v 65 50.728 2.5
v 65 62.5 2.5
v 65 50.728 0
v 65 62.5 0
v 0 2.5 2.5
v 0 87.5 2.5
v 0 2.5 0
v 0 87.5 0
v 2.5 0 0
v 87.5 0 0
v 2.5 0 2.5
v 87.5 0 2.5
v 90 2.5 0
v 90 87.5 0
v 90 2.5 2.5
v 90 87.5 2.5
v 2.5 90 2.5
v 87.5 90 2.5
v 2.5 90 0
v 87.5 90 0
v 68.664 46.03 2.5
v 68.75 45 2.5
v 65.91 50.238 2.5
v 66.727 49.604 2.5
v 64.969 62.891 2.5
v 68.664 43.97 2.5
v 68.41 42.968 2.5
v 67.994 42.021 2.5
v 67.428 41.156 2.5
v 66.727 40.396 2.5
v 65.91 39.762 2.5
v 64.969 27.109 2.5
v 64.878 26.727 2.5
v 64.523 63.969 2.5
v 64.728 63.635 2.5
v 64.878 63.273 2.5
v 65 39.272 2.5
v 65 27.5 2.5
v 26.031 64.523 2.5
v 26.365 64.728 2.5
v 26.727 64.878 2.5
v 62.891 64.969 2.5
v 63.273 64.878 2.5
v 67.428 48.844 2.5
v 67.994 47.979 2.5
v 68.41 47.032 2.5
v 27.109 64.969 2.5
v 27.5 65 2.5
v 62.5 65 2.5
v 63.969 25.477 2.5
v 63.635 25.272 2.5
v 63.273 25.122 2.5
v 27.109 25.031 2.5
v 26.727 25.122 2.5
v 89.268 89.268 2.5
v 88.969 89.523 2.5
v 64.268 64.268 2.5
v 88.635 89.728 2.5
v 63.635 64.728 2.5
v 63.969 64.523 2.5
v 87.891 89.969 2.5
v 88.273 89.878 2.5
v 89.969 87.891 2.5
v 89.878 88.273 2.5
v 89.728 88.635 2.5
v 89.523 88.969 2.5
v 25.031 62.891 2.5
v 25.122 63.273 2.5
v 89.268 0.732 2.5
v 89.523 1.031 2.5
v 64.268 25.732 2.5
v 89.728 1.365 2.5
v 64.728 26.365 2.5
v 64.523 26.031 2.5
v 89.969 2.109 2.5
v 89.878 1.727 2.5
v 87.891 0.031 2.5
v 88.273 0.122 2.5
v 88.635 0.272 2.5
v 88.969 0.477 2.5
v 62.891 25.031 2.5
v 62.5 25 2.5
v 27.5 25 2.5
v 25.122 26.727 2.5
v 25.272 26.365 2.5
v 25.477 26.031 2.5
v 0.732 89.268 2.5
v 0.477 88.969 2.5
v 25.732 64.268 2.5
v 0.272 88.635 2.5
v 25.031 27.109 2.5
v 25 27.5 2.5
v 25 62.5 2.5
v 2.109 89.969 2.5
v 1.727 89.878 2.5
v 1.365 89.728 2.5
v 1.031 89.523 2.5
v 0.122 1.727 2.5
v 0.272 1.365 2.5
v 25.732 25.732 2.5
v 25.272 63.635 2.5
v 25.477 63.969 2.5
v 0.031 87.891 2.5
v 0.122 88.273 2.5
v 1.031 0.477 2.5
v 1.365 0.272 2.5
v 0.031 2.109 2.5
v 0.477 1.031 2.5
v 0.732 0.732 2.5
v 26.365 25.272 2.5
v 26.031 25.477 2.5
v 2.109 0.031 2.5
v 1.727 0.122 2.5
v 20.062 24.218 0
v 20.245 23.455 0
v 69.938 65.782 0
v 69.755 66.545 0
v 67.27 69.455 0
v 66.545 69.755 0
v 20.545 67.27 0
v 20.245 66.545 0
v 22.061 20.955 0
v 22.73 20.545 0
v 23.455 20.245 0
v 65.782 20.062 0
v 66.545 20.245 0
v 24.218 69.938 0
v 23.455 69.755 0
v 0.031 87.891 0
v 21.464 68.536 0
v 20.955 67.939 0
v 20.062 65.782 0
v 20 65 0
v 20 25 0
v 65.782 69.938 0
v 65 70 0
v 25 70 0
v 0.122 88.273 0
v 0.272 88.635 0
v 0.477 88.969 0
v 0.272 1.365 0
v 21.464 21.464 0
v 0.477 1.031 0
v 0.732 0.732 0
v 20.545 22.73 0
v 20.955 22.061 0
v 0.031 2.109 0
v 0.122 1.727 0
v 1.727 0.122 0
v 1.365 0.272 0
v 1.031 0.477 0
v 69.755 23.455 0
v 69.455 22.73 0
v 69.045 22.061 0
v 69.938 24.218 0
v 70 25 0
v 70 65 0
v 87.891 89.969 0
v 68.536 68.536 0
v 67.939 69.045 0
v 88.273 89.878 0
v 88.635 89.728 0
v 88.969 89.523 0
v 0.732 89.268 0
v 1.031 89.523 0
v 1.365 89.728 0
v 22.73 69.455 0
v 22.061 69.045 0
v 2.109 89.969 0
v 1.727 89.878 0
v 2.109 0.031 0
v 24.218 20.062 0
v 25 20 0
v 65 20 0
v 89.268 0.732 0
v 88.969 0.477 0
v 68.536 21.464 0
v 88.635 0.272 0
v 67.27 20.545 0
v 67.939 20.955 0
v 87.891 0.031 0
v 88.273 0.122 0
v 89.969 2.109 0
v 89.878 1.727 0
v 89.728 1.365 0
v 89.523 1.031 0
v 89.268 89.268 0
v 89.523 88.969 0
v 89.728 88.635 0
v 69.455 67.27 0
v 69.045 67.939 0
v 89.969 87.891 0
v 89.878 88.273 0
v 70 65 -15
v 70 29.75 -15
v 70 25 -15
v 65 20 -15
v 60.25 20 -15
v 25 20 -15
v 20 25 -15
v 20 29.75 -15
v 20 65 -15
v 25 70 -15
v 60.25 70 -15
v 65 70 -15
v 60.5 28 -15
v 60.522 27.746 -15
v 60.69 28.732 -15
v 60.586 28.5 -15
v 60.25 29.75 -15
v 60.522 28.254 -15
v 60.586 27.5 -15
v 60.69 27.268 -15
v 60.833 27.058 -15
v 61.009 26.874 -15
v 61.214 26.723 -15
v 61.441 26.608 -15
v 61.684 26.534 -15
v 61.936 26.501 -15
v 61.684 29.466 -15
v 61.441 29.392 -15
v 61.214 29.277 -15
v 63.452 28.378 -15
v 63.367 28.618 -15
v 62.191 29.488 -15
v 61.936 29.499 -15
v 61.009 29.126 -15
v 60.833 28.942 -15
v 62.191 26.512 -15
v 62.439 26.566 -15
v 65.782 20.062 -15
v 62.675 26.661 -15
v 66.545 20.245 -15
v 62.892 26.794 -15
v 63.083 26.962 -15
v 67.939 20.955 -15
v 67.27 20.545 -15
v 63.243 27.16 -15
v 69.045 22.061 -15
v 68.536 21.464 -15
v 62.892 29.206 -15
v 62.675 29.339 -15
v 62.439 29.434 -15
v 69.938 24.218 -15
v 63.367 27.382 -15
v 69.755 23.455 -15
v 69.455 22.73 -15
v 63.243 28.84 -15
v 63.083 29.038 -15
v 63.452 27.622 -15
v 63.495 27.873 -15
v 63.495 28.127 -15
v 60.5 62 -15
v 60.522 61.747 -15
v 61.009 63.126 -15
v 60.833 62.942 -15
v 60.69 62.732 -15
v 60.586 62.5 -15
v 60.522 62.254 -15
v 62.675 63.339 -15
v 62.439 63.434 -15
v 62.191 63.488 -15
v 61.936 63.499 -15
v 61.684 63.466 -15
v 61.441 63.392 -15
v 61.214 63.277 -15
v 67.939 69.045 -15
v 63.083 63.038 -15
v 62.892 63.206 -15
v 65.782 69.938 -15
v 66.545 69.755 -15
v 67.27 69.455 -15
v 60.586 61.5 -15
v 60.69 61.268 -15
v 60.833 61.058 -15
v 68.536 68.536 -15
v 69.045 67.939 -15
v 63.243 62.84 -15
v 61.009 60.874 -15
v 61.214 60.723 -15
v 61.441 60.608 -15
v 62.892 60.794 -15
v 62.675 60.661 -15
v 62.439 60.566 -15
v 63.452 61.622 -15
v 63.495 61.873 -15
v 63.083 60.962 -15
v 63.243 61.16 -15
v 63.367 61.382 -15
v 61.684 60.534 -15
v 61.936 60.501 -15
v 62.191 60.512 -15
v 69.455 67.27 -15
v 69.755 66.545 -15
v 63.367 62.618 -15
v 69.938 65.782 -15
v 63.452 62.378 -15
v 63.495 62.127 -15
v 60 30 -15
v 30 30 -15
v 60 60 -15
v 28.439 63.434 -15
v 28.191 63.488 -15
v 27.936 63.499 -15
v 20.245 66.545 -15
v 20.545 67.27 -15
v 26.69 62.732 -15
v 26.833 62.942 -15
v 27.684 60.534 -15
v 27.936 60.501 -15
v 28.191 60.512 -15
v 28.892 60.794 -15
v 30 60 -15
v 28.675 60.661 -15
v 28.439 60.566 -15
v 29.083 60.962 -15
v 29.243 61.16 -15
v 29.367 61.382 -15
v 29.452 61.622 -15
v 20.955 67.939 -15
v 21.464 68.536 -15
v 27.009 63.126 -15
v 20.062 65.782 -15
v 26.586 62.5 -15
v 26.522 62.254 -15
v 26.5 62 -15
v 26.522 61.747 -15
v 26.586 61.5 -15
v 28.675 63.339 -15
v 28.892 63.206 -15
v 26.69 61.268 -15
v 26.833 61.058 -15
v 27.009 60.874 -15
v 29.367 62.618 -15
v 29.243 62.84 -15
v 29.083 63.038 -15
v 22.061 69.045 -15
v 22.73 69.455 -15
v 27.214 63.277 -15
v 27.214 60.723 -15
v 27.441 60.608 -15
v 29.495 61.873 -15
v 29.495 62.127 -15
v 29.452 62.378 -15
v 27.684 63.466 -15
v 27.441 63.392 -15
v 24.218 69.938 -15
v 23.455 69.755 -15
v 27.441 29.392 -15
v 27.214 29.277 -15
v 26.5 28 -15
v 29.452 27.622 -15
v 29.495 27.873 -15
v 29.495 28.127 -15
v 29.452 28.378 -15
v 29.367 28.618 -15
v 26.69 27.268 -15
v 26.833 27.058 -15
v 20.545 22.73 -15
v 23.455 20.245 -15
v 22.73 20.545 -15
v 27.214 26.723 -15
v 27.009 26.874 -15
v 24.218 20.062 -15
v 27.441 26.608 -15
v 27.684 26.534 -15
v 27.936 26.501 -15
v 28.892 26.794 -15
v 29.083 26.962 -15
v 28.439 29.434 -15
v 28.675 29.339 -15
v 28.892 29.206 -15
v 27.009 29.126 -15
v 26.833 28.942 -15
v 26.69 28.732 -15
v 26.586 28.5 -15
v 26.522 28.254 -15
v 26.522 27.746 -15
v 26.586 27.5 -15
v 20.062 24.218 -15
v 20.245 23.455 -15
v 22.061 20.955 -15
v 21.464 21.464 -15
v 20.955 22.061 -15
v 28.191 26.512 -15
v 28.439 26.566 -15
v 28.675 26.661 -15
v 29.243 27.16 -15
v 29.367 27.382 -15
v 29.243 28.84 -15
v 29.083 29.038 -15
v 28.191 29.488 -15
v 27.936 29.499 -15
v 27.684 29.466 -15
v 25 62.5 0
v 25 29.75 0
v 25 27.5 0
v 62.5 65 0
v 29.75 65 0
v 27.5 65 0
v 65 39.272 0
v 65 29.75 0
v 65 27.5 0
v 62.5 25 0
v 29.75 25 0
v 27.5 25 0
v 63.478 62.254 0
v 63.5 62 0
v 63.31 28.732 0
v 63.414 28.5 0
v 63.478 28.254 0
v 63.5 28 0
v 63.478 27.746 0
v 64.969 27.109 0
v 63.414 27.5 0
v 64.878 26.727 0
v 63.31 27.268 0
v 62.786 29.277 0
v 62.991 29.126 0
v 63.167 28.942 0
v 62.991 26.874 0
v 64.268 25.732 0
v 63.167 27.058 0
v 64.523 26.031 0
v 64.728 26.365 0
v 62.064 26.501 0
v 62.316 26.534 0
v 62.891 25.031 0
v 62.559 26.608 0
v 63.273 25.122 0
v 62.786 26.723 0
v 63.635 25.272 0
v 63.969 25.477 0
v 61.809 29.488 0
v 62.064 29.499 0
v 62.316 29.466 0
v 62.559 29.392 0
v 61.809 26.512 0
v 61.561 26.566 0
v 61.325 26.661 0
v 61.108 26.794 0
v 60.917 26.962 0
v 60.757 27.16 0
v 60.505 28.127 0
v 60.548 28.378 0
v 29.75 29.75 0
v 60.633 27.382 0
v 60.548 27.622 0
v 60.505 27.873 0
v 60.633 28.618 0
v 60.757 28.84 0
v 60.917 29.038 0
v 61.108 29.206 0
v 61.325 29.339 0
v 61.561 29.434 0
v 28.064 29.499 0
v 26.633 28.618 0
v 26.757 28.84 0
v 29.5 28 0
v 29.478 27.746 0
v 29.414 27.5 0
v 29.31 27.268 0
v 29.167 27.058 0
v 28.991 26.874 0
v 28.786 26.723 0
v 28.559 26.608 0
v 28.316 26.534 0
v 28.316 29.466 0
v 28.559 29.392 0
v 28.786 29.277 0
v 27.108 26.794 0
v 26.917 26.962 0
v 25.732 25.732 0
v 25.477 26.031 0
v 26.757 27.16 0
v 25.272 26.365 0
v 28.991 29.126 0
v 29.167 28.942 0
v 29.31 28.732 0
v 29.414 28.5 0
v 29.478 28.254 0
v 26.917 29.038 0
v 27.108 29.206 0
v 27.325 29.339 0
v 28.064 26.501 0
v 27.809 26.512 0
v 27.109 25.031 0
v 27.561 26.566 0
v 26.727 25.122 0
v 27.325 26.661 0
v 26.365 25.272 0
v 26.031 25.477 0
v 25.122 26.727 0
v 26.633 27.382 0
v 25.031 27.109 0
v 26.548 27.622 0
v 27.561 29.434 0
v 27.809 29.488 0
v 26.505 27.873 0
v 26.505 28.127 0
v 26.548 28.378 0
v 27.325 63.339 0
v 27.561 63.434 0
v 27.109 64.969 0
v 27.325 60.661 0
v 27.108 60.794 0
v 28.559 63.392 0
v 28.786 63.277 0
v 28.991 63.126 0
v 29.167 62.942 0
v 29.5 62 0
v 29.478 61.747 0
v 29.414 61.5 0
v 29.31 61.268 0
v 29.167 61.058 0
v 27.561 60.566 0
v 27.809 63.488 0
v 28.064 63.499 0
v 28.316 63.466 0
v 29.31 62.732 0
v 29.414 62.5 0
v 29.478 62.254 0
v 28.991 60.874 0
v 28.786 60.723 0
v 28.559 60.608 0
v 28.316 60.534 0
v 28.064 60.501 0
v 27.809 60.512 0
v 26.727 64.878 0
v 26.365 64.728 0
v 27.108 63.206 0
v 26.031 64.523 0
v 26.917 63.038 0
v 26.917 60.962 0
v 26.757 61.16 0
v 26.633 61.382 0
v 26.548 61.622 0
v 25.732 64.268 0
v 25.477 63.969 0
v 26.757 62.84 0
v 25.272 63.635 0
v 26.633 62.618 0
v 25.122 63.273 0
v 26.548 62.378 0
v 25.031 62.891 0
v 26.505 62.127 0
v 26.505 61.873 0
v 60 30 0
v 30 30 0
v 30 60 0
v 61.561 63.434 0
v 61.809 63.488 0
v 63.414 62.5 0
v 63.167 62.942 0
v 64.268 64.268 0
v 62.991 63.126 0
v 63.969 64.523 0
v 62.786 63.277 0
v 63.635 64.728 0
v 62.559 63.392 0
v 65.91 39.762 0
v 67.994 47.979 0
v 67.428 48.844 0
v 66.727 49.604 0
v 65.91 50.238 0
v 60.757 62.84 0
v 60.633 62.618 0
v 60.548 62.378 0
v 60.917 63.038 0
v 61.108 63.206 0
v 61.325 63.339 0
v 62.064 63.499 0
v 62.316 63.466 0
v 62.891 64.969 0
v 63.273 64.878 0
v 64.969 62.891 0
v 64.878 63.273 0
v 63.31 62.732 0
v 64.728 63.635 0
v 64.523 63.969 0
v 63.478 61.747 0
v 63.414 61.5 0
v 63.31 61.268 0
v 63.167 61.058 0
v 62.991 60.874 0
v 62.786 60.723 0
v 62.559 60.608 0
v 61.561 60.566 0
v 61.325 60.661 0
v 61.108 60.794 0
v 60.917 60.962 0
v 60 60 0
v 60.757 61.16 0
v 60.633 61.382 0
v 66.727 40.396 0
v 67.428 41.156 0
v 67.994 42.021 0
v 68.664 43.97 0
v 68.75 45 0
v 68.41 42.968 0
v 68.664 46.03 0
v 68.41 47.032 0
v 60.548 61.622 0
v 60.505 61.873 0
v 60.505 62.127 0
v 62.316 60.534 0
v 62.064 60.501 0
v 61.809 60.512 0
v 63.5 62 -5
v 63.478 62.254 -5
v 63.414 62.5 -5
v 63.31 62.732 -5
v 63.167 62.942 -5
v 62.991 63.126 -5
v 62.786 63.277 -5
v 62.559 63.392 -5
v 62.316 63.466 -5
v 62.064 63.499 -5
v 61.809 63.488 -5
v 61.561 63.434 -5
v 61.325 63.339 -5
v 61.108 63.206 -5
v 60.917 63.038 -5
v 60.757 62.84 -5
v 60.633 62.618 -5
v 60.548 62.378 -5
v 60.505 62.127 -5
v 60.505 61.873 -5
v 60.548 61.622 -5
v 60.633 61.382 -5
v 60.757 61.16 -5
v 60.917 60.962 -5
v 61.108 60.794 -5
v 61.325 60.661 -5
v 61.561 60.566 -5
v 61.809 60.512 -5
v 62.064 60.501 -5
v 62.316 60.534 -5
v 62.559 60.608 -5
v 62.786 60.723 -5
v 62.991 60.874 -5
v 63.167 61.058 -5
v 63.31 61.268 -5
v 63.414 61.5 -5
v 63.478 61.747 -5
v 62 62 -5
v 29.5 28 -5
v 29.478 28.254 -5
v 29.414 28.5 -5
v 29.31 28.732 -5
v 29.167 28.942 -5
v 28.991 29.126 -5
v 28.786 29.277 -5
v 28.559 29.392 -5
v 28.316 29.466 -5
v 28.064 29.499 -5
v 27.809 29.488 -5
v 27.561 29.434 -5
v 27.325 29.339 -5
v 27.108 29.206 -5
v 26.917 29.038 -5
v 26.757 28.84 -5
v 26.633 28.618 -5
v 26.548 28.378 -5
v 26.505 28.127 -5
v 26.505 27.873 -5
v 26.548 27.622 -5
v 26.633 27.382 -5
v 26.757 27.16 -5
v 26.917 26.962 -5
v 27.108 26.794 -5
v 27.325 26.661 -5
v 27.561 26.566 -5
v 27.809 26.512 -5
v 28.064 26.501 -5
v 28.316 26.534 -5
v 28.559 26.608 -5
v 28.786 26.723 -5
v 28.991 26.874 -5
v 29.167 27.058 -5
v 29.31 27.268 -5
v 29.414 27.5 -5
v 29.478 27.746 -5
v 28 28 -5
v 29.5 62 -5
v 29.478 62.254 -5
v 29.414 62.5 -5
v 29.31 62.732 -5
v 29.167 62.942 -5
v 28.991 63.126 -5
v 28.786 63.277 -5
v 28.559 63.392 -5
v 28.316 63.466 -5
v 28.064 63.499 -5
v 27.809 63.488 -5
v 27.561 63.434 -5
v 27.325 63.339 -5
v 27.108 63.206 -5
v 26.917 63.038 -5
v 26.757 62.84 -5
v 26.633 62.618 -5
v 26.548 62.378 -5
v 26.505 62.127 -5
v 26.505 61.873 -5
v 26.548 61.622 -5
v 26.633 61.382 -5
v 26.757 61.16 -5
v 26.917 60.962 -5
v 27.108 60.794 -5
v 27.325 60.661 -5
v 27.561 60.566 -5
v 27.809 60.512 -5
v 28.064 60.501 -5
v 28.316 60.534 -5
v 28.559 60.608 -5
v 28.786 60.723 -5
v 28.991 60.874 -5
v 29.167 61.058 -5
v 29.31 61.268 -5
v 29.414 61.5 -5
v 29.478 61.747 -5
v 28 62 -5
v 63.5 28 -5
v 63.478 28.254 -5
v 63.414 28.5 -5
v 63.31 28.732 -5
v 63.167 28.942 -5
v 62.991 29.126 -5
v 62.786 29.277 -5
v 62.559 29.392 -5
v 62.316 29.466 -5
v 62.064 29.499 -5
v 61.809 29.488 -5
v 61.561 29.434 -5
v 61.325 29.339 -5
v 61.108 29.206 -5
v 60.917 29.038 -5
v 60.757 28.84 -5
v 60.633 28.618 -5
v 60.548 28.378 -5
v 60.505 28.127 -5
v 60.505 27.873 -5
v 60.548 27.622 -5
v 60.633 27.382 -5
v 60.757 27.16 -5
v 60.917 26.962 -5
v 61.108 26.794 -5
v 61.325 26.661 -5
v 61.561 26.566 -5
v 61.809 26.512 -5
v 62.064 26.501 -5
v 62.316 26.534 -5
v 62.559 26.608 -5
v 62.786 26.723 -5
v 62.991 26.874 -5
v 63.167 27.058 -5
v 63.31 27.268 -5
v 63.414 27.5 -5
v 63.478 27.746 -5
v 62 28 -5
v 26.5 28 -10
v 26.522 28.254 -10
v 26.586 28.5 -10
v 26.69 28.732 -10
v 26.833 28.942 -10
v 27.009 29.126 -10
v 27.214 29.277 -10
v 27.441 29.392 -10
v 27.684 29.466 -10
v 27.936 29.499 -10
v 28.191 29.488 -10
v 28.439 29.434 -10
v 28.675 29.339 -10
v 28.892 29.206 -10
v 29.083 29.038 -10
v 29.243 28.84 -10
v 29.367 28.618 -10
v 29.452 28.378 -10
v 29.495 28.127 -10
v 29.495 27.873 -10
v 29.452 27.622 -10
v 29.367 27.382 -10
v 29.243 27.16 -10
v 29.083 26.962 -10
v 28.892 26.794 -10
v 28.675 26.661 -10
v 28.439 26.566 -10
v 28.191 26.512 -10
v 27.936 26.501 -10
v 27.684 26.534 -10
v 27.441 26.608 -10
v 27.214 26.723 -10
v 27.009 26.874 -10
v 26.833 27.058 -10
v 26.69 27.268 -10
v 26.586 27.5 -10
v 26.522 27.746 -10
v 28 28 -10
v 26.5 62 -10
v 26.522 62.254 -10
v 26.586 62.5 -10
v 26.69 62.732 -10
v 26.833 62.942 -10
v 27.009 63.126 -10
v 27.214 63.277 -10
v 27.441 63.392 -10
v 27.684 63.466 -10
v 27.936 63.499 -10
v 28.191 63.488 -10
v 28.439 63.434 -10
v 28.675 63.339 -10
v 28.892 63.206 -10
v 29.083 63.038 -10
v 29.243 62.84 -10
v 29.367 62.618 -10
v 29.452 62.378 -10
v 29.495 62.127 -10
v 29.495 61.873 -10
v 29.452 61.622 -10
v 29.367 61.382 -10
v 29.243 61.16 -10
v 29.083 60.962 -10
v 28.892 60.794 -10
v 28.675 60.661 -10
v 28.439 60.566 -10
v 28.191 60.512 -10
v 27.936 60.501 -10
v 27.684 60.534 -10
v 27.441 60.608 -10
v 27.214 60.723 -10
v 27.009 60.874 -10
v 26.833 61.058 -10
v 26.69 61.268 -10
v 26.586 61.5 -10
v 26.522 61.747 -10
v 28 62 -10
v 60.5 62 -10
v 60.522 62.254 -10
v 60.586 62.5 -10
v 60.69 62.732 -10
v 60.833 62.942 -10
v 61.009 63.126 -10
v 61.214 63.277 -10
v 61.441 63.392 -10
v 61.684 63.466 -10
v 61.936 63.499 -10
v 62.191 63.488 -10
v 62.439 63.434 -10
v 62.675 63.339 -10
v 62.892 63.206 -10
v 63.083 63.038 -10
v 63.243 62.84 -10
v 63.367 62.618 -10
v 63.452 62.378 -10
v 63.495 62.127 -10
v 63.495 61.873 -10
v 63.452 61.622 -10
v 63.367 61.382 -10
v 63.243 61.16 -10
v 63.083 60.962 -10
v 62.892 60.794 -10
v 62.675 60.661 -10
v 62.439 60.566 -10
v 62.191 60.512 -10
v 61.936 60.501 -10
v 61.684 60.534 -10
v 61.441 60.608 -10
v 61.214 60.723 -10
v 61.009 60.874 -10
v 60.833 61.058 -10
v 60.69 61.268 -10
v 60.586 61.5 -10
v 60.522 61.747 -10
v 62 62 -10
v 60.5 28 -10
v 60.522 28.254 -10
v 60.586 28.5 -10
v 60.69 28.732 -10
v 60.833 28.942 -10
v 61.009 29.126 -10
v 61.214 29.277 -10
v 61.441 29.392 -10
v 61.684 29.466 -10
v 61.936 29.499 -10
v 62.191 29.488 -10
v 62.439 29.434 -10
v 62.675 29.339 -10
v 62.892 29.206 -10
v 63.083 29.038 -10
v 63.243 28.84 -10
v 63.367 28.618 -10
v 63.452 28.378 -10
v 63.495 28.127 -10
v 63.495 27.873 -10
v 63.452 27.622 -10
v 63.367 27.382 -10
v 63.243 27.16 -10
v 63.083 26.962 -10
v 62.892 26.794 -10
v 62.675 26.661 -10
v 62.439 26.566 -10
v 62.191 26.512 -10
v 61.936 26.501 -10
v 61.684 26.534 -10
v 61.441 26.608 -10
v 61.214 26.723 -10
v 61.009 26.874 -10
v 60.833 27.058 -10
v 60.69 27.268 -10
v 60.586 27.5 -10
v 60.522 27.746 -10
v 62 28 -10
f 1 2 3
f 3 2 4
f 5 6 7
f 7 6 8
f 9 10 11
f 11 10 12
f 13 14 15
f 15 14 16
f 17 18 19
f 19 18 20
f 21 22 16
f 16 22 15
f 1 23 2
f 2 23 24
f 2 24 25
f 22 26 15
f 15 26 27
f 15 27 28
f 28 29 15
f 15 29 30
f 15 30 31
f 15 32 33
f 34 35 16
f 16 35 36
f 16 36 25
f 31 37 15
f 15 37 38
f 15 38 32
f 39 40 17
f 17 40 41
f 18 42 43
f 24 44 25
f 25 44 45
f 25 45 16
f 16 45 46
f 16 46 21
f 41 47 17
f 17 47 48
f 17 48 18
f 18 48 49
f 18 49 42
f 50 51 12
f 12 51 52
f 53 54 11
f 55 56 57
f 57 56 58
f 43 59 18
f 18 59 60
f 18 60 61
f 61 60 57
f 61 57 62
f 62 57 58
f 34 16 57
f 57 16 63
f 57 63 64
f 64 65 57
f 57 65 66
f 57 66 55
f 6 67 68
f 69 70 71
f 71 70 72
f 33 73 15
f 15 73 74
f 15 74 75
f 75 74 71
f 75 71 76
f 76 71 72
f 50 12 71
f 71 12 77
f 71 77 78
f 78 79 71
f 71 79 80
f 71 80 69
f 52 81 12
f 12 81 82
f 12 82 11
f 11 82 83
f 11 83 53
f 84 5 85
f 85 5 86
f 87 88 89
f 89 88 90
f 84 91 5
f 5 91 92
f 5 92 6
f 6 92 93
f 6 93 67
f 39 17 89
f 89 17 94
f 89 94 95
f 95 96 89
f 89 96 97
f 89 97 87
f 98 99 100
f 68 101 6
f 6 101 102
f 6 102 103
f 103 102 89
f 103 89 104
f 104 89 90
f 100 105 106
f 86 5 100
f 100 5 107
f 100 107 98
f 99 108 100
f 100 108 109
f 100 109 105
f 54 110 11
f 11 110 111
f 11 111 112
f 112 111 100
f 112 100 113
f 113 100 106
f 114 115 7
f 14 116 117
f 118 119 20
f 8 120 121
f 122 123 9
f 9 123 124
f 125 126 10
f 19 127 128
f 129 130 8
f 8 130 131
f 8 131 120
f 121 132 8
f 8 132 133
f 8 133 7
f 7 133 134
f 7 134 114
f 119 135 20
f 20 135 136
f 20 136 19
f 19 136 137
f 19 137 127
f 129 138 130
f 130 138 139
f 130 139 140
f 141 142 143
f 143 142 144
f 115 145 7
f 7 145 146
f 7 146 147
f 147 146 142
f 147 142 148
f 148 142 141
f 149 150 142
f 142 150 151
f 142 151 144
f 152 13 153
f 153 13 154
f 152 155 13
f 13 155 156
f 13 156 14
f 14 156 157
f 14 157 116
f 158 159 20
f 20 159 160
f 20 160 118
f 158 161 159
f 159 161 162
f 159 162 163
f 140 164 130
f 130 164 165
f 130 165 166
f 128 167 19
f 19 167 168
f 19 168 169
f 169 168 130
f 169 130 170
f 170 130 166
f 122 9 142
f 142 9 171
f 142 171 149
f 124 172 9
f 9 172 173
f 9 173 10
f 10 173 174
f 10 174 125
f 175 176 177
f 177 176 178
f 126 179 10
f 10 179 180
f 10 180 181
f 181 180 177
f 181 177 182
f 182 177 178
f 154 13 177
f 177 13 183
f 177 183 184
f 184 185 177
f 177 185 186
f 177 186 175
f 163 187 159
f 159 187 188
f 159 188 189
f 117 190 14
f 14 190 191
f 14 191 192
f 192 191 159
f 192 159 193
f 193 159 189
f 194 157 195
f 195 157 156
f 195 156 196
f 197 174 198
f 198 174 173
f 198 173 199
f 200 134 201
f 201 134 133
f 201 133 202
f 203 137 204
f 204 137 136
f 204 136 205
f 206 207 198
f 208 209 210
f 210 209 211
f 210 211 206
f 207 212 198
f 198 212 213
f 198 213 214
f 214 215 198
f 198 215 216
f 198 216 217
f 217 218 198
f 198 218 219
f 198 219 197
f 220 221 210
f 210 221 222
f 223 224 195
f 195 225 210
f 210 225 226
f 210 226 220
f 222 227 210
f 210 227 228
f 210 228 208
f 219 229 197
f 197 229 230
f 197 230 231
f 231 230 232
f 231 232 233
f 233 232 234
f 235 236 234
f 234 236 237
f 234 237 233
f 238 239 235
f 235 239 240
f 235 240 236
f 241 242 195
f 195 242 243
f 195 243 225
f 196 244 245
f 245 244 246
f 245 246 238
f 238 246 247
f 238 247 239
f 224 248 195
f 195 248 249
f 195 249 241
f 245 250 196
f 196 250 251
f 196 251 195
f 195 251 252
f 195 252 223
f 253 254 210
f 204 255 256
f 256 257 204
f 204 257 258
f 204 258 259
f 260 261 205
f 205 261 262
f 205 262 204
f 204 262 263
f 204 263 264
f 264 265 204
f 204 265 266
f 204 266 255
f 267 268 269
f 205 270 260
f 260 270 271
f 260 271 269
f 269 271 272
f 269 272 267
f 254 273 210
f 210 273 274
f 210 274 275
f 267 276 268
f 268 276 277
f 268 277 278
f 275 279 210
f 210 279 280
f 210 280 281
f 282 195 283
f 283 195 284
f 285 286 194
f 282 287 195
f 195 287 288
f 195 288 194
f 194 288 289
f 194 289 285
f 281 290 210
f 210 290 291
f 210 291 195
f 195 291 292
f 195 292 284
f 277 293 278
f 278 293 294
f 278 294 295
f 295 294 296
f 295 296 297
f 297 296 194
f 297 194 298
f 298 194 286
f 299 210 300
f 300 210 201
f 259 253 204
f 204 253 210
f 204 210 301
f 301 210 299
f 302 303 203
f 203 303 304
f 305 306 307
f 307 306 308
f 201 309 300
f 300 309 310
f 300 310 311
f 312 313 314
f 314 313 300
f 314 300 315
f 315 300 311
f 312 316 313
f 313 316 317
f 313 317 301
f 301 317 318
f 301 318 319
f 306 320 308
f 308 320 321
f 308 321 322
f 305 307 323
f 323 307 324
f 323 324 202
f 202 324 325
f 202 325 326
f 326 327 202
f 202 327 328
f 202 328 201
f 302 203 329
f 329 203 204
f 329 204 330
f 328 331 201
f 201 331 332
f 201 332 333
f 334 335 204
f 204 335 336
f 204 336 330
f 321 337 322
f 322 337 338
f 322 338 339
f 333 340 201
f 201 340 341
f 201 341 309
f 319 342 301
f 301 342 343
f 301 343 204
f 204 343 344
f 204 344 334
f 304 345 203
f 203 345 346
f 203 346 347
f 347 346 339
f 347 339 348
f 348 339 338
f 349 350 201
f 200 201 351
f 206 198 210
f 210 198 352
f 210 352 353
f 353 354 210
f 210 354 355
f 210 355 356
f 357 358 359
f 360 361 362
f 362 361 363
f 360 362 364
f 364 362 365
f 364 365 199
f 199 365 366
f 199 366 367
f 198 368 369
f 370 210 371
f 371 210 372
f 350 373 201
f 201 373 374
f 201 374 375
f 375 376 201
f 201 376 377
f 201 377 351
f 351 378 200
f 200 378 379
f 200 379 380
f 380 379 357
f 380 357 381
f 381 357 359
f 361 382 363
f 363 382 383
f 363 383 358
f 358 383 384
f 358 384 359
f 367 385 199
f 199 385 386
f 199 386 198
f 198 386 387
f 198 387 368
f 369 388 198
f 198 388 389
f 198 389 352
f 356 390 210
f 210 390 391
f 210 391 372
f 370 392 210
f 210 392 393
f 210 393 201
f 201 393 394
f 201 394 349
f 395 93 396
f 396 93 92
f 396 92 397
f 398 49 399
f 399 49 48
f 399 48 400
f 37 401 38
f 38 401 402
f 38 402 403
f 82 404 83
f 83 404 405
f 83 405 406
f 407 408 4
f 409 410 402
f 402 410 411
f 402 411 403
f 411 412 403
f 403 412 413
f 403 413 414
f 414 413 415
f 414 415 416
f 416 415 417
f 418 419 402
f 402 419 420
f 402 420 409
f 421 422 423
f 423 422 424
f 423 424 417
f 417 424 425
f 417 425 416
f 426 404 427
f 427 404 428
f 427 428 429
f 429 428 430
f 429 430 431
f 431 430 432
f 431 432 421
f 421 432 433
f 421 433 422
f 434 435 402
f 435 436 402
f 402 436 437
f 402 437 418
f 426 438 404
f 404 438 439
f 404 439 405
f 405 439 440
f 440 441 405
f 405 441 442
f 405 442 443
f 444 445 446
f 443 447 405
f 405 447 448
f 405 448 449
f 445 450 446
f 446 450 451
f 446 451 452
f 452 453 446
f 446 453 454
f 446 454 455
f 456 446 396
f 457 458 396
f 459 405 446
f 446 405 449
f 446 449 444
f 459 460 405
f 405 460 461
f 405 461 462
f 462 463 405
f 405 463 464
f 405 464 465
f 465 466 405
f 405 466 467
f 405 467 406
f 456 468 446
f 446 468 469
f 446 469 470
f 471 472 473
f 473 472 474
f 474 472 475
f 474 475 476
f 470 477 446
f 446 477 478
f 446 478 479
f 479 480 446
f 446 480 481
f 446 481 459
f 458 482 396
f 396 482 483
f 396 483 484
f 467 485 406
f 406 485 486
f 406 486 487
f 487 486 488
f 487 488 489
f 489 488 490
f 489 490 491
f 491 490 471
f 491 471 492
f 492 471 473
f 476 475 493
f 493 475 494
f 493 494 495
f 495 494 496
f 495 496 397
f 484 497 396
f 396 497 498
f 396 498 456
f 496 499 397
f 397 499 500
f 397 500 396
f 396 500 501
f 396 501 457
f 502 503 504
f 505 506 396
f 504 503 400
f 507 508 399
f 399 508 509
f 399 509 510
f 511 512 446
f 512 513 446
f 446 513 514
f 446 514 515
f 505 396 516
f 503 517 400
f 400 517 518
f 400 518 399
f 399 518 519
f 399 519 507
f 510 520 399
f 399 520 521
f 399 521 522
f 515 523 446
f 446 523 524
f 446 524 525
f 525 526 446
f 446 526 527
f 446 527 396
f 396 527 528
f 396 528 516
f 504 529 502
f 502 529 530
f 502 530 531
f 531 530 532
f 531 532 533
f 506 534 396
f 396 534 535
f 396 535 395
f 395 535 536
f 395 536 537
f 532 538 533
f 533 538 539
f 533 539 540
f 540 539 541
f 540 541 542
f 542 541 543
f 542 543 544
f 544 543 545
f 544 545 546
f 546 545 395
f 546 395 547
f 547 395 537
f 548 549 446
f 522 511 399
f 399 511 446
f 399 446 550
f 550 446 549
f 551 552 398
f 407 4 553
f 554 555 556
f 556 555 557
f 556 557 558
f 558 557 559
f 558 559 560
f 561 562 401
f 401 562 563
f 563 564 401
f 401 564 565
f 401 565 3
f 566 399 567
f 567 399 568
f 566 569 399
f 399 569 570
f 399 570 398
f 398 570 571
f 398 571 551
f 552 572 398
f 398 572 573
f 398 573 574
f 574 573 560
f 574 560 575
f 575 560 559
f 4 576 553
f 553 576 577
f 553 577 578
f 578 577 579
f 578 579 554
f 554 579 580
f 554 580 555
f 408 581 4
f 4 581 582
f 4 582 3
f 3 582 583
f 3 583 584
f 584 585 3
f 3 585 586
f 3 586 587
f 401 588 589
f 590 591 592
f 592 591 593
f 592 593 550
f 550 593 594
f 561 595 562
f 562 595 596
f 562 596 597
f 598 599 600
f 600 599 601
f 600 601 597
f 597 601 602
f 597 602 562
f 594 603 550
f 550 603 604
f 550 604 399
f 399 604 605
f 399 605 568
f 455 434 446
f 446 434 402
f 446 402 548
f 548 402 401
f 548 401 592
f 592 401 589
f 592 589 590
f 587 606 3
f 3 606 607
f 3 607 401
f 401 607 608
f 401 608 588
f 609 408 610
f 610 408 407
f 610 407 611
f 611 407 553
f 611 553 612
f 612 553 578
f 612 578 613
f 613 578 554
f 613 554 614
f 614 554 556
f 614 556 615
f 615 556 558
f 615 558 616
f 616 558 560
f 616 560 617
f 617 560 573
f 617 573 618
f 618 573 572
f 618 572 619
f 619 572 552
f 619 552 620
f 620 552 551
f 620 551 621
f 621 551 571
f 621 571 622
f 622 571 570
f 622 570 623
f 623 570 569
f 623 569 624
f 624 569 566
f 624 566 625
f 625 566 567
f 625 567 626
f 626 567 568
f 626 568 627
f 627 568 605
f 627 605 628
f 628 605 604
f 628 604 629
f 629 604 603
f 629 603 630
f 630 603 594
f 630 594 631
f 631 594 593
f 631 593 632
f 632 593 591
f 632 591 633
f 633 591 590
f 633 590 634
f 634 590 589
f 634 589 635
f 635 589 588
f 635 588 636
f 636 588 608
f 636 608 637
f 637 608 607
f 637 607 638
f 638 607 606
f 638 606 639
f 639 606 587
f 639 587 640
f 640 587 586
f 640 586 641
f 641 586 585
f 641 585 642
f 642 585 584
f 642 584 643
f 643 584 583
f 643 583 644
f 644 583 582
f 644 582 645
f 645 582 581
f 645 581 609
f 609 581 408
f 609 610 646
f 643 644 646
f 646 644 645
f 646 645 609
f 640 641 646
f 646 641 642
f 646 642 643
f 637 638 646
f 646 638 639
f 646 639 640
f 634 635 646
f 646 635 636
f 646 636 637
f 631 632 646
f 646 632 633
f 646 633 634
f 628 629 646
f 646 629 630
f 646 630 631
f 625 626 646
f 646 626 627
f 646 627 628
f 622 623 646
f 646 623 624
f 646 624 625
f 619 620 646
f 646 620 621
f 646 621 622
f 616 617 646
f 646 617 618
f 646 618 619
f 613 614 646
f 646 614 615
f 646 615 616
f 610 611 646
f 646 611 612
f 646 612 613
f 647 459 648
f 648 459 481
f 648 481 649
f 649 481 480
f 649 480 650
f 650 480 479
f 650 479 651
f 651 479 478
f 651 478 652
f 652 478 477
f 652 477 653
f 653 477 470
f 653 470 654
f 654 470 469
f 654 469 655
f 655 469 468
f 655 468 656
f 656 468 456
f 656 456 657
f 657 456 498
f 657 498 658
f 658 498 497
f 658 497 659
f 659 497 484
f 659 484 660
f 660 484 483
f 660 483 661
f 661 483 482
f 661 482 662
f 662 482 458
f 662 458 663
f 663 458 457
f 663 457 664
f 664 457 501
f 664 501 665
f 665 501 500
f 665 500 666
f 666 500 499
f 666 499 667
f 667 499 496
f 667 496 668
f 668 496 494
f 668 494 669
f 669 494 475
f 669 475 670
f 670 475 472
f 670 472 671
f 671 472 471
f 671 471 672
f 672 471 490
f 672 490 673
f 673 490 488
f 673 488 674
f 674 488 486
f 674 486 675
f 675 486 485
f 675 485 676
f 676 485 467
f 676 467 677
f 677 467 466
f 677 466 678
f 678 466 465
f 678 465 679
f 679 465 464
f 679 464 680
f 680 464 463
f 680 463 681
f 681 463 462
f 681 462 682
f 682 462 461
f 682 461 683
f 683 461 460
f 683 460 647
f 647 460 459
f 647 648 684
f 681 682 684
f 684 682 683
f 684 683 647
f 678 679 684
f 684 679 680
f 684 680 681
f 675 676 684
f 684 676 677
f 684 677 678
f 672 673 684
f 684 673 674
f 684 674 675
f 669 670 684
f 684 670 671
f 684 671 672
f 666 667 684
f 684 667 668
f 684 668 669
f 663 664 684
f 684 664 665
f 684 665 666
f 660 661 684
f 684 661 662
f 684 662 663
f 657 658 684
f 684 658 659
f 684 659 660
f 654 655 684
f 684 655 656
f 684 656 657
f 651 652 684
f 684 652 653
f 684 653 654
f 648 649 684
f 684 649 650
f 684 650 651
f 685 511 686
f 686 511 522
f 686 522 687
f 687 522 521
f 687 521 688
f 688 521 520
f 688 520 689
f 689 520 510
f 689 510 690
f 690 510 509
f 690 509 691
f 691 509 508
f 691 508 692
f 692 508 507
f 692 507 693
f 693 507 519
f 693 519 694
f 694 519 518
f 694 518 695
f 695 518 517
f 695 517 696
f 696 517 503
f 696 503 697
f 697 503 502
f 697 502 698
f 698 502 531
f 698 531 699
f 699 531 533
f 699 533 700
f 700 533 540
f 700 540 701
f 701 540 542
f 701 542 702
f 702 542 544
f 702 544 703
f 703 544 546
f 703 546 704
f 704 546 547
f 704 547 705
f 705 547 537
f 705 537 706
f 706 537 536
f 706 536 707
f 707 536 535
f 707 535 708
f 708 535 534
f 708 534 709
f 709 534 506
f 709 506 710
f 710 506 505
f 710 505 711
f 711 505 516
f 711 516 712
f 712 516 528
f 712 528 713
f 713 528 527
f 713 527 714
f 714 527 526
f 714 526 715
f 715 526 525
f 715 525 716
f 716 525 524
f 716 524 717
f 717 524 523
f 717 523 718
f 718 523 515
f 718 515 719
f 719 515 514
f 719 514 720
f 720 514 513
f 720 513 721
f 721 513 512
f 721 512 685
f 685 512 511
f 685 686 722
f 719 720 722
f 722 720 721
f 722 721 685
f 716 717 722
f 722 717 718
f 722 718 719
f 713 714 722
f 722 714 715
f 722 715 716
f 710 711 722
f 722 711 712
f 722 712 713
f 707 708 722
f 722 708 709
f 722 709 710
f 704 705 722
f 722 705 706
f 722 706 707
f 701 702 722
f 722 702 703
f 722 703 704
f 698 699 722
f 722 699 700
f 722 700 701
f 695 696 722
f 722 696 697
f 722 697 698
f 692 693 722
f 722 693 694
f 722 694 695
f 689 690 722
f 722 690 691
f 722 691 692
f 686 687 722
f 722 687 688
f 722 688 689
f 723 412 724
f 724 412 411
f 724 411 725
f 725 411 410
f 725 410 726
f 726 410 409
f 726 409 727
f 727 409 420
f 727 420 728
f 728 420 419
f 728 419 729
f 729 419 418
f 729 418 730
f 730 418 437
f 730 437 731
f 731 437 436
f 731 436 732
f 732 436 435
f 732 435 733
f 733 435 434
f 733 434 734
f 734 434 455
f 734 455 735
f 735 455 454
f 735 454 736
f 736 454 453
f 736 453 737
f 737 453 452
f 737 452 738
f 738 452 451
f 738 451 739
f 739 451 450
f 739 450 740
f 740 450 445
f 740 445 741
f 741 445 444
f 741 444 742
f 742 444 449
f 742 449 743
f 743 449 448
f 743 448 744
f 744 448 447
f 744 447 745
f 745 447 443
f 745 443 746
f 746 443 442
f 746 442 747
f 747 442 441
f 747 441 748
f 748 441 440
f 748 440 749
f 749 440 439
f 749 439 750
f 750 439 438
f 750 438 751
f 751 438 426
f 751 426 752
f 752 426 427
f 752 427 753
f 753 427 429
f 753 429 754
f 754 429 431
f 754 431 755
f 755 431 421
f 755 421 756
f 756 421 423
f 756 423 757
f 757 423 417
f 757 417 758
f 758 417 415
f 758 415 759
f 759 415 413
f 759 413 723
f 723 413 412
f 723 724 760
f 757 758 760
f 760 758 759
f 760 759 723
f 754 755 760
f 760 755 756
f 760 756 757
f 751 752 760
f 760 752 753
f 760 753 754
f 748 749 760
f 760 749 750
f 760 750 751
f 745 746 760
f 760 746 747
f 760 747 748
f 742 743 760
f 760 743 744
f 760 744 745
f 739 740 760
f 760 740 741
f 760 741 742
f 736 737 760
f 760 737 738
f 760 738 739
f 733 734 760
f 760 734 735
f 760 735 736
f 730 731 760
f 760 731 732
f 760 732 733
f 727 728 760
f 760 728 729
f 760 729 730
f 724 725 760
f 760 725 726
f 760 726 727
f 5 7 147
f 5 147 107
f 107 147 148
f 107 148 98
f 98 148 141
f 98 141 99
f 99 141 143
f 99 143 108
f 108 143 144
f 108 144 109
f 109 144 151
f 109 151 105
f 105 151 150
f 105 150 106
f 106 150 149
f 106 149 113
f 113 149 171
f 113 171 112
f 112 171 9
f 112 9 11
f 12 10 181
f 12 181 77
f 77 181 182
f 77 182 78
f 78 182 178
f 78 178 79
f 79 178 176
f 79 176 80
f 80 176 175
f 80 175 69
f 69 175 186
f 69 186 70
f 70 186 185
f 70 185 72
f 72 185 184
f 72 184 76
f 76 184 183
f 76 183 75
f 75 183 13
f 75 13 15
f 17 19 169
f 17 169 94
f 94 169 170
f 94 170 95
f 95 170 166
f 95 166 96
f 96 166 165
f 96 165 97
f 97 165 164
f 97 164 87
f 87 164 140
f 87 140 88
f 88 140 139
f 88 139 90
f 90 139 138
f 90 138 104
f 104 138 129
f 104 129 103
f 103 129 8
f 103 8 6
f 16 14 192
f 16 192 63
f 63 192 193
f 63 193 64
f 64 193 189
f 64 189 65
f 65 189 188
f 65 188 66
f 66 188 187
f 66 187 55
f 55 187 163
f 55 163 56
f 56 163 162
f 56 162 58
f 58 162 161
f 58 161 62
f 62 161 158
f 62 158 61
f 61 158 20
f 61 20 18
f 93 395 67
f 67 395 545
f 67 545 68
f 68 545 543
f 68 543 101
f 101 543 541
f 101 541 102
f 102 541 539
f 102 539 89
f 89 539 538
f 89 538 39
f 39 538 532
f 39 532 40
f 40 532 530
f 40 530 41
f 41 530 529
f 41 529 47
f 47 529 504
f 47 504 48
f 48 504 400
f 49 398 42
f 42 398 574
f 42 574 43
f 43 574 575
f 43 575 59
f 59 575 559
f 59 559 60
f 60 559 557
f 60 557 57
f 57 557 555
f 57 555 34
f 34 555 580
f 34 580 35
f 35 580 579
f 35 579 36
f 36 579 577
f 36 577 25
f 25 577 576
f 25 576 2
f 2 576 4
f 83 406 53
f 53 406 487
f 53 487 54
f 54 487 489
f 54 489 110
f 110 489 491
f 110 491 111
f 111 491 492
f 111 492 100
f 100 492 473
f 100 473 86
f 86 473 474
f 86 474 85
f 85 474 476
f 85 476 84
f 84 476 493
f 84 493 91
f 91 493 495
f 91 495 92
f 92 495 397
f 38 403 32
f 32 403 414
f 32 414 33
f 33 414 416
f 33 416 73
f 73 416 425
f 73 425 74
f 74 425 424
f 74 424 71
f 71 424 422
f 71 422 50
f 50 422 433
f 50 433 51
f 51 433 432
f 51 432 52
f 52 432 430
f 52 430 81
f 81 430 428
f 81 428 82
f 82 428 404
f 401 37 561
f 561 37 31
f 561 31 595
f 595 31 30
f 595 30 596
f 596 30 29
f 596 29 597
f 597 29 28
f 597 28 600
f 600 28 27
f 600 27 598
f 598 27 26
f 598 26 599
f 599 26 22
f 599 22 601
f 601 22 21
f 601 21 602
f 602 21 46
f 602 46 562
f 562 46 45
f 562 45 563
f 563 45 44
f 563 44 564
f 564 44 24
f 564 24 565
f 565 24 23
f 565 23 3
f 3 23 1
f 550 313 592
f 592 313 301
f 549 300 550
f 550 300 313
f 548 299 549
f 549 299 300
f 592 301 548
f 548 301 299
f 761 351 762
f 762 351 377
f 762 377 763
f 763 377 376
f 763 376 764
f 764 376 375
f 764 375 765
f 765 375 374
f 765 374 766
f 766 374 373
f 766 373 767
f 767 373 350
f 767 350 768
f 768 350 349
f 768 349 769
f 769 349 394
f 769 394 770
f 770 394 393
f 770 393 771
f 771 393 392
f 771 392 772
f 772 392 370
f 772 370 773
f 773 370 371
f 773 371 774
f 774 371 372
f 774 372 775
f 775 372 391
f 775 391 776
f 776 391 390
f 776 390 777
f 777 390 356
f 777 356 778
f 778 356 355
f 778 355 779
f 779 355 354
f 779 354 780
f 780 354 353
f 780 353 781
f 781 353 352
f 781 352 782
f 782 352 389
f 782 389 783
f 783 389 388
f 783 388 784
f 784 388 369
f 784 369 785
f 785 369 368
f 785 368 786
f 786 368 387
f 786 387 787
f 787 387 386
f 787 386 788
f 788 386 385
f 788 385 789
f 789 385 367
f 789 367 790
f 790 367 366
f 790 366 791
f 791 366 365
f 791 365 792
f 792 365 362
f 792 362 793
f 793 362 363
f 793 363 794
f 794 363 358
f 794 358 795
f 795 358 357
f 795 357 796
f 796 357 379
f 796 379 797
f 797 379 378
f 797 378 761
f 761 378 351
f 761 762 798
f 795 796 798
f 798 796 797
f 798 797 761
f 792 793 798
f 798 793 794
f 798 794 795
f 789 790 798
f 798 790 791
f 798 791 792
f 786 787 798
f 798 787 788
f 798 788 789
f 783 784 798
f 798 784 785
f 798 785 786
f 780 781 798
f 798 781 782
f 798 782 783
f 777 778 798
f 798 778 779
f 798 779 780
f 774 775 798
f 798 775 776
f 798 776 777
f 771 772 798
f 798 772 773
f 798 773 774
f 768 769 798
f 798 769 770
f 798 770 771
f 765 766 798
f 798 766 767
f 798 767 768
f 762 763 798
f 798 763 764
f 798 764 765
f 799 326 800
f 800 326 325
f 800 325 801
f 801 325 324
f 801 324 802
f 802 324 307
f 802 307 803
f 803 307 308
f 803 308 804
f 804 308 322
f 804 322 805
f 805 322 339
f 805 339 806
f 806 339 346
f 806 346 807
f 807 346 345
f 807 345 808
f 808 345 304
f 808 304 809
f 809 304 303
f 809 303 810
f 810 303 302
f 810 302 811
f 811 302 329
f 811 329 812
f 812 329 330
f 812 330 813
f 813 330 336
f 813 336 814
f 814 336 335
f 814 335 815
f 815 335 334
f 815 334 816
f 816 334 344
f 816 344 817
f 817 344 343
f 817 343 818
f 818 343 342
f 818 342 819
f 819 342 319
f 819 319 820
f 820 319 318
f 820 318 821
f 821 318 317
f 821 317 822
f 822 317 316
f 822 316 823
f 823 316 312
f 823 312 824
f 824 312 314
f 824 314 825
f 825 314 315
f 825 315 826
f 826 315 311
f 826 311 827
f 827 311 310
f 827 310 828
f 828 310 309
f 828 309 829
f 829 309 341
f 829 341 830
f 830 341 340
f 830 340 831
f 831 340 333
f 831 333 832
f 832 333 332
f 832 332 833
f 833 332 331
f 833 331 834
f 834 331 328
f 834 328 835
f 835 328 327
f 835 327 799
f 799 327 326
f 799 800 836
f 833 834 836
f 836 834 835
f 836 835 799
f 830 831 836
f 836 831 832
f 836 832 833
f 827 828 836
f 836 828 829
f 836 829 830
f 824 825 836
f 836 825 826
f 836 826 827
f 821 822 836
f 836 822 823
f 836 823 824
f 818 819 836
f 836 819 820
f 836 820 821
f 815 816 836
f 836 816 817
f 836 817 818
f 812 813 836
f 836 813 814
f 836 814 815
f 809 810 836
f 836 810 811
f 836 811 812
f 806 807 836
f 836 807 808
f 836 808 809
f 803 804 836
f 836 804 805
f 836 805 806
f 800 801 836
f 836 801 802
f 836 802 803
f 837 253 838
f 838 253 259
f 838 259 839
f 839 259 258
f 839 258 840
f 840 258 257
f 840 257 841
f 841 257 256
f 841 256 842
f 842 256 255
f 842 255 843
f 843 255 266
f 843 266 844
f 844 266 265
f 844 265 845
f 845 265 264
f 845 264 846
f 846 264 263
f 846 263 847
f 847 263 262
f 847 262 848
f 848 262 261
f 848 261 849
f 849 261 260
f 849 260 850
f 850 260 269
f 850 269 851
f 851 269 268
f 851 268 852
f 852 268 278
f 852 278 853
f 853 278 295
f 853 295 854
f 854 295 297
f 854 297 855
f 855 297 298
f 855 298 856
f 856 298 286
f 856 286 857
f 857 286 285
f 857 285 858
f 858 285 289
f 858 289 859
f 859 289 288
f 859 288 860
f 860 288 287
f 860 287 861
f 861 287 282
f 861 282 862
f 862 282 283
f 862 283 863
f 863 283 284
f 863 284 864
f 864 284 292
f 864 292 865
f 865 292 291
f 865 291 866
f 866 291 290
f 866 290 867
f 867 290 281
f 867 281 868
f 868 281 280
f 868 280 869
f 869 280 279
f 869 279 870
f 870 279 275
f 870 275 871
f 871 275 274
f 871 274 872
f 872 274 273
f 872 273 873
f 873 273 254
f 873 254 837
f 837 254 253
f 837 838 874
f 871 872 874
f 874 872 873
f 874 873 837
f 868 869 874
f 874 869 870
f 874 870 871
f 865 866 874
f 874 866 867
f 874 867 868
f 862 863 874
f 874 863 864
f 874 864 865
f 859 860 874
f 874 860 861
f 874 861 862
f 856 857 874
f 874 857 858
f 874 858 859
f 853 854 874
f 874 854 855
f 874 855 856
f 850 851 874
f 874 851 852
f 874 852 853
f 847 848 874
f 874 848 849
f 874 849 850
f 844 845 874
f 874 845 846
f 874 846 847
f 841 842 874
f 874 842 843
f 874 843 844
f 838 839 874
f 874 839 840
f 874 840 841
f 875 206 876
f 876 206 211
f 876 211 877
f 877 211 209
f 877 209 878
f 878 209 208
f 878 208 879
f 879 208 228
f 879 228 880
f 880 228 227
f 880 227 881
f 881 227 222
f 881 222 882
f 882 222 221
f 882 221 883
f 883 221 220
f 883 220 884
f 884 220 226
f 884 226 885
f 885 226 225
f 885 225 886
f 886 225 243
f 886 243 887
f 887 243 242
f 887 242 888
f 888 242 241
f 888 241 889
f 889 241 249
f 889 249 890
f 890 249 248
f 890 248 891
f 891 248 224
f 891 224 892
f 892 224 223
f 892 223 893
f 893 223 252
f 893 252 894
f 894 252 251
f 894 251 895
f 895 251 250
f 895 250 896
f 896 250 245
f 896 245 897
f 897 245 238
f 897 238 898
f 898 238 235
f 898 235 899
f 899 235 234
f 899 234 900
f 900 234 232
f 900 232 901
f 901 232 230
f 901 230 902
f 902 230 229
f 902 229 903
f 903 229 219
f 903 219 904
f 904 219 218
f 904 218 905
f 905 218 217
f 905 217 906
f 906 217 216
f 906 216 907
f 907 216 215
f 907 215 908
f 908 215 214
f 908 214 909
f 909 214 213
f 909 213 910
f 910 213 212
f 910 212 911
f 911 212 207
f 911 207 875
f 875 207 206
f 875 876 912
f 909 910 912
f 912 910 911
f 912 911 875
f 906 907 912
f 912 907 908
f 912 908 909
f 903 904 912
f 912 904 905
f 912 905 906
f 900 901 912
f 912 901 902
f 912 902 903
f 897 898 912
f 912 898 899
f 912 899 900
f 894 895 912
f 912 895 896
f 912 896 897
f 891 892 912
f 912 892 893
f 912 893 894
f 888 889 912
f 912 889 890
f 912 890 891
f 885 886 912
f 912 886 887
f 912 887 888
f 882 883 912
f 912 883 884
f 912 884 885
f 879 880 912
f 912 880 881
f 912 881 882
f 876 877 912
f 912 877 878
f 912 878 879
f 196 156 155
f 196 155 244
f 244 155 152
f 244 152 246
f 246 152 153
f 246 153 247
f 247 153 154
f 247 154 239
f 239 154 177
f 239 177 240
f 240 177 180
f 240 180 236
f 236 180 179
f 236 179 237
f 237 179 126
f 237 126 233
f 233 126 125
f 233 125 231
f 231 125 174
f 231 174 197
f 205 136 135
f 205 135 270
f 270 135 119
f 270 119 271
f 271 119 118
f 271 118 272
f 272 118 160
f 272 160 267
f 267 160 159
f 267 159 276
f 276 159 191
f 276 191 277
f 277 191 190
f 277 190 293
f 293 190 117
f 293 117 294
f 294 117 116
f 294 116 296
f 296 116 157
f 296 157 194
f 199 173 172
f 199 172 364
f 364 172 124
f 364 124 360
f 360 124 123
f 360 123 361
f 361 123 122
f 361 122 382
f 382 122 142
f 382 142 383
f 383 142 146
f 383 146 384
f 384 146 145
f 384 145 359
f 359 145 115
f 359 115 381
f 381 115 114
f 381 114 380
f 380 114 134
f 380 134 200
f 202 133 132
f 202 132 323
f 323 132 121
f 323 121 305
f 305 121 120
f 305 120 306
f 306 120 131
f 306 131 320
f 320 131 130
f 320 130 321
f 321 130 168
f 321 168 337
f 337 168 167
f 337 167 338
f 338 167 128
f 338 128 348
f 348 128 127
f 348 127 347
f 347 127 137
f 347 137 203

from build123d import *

# Parameters (mm, degrees)
SKETCH1_W           = 90
SKETCH1_H           = 90
BOSS_EXTRUDE1_DEPTH = 2.5
SKETCH3_W           = 50
SKETCH3_H           = 50
BOSS_EXTRUDE4_DEPTH = 15
SKETCH2_W           = 40
SKETCH2_H           = 40
CUT_EXTRUDE4_DEPTH  = 2.5
SKETCH8_R           = 1.5
CUT_EXTRUDE6_DEPTH  = 5
FILLET1_R           = 2.5
FILLET2_R           = 2.5
FILLET3_R           = 2.5
SKETCH10_R          = 6.25
CUT_EXTRUDE12_DEPTH = 2.5
SKETCH11_W          = 30
SKETCH11_H          = 30
CUT_EXTRUDE13_DEPTH = 15
SKETCH12_R          = 1.5
CUT_EXTRUDE14_DEPTH = 5
FILLET4_R           = 5
FILLET5_R           = 5


with BuildPart() as part:
    # Sketch1 → Boss-Extrude1 (new body)
    with BuildSketch(Plane.XY):
        with Locations((45, 45)):
            Rectangle(SKETCH1_W, SKETCH1_H)
    extrude(amount=BOSS_EXTRUDE1_DEPTH)

    # Sketch3 → Boss-Extrude4 (add)
    with BuildSketch(Plane(origin=(0, 0, 0), x_dir=(-1, 0, 0), z_dir=(0, 0, -1))):
        with Locations((-45, 45)):
            Rectangle(SKETCH3_W, SKETCH3_H)
    extrude(amount=BOSS_EXTRUDE4_DEPTH)

    # Sketch2 → Cut-Extrude4 (cut)
    with BuildSketch(Plane.XY.offset(2.5)):
        with Locations((45, 45)):
            Rectangle(SKETCH2_W, SKETCH2_H)
    extrude(amount=-CUT_EXTRUDE4_DEPTH, mode=Mode.SUBTRACT)

    # Sketch8 → Cut-Extrude6 (cut)
    with BuildSketch(Plane.XY):
        with Locations((62, 62)):
            Circle(SKETCH8_R)
        with Locations((62, 28)):
            Circle(SKETCH8_R)
        with Locations((28, 62)):
            Circle(SKETCH8_R)
        with Locations((28, 28)):
            Circle(SKETCH8_R)
    extrude(amount=-CUT_EXTRUDE6_DEPTH, mode=Mode.SUBTRACT)

    # Fillet1
    fillet1_edges = [part.edges().sort_by_distance(p)[0] for p in [
        (0, 90, 1.25),
        (90, 90, 1.25),
        (90, 0, 1.25),
        (0, 0, 1.25),
    ]]
    fillet(fillet1_edges, radius=FILLET1_R)

    # Fillet2
    fillet2_edges = [part.edges().sort_by_distance(p)[0] for p in [
        (25, 65, 1.25),
        (65, 65, 1.25),
    ]]
    fillet(fillet2_edges, radius=FILLET2_R)

    # Fillet3
    fillet3_edges = [part.edges().sort_by_distance(p)[0] for p in [
        (25, 25, 1.25),
        (65, 25, 1.25),
    ]]
    fillet(fillet3_edges, radius=FILLET3_R)

    # Sketch10 → Cut-Extrude12 (cut)
    with BuildSketch(Plane.XY.offset(2.5)):
        with Locations((62.5, 45)):
            Circle(SKETCH10_R)
    extrude(amount=-CUT_EXTRUDE12_DEPTH, mode=Mode.SUBTRACT)

    # Sketch11 → Cut-Extrude13 (cut)
    with BuildSketch(Plane.XY):
        with Locations((45, 45)):
            Rectangle(SKETCH11_W, SKETCH11_H)
    extrude(amount=-CUT_EXTRUDE13_DEPTH, mode=Mode.SUBTRACT)

    # Sketch12 → Cut-Extrude14 (cut)
    with BuildSketch(Plane(origin=(0, 0, -15), x_dir=(-1, 0, 0), z_dir=(0, 0, -1))):
        with Locations((-28, 28)):
            Circle(SKETCH12_R)
        with Locations((-28, 62)):
            Circle(SKETCH12_R)
        with Locations((-62, 62)):
            Circle(SKETCH12_R)
        with Locations((-62, 28)):
            Circle(SKETCH12_R)
    extrude(amount=-CUT_EXTRUDE14_DEPTH, mode=Mode.SUBTRACT)

    # Fillet4
    fillet4_edges = [part.edges().sort_by_distance(p)[0] for p in [
        (70, 70, -7.5),
        (70, 20, -7.5),
    ]]
    fillet(fillet4_edges, radius=FILLET4_R)

    # Fillet5
    fillet5_edges = [part.edges().sort_by_distance(p)[0] for p in [
        (20, 20, -7.5),
        (20, 70, -7.5),
    ]]
    fillet(fillet5_edges, radius=FILLET5_R)


solid = part.part
